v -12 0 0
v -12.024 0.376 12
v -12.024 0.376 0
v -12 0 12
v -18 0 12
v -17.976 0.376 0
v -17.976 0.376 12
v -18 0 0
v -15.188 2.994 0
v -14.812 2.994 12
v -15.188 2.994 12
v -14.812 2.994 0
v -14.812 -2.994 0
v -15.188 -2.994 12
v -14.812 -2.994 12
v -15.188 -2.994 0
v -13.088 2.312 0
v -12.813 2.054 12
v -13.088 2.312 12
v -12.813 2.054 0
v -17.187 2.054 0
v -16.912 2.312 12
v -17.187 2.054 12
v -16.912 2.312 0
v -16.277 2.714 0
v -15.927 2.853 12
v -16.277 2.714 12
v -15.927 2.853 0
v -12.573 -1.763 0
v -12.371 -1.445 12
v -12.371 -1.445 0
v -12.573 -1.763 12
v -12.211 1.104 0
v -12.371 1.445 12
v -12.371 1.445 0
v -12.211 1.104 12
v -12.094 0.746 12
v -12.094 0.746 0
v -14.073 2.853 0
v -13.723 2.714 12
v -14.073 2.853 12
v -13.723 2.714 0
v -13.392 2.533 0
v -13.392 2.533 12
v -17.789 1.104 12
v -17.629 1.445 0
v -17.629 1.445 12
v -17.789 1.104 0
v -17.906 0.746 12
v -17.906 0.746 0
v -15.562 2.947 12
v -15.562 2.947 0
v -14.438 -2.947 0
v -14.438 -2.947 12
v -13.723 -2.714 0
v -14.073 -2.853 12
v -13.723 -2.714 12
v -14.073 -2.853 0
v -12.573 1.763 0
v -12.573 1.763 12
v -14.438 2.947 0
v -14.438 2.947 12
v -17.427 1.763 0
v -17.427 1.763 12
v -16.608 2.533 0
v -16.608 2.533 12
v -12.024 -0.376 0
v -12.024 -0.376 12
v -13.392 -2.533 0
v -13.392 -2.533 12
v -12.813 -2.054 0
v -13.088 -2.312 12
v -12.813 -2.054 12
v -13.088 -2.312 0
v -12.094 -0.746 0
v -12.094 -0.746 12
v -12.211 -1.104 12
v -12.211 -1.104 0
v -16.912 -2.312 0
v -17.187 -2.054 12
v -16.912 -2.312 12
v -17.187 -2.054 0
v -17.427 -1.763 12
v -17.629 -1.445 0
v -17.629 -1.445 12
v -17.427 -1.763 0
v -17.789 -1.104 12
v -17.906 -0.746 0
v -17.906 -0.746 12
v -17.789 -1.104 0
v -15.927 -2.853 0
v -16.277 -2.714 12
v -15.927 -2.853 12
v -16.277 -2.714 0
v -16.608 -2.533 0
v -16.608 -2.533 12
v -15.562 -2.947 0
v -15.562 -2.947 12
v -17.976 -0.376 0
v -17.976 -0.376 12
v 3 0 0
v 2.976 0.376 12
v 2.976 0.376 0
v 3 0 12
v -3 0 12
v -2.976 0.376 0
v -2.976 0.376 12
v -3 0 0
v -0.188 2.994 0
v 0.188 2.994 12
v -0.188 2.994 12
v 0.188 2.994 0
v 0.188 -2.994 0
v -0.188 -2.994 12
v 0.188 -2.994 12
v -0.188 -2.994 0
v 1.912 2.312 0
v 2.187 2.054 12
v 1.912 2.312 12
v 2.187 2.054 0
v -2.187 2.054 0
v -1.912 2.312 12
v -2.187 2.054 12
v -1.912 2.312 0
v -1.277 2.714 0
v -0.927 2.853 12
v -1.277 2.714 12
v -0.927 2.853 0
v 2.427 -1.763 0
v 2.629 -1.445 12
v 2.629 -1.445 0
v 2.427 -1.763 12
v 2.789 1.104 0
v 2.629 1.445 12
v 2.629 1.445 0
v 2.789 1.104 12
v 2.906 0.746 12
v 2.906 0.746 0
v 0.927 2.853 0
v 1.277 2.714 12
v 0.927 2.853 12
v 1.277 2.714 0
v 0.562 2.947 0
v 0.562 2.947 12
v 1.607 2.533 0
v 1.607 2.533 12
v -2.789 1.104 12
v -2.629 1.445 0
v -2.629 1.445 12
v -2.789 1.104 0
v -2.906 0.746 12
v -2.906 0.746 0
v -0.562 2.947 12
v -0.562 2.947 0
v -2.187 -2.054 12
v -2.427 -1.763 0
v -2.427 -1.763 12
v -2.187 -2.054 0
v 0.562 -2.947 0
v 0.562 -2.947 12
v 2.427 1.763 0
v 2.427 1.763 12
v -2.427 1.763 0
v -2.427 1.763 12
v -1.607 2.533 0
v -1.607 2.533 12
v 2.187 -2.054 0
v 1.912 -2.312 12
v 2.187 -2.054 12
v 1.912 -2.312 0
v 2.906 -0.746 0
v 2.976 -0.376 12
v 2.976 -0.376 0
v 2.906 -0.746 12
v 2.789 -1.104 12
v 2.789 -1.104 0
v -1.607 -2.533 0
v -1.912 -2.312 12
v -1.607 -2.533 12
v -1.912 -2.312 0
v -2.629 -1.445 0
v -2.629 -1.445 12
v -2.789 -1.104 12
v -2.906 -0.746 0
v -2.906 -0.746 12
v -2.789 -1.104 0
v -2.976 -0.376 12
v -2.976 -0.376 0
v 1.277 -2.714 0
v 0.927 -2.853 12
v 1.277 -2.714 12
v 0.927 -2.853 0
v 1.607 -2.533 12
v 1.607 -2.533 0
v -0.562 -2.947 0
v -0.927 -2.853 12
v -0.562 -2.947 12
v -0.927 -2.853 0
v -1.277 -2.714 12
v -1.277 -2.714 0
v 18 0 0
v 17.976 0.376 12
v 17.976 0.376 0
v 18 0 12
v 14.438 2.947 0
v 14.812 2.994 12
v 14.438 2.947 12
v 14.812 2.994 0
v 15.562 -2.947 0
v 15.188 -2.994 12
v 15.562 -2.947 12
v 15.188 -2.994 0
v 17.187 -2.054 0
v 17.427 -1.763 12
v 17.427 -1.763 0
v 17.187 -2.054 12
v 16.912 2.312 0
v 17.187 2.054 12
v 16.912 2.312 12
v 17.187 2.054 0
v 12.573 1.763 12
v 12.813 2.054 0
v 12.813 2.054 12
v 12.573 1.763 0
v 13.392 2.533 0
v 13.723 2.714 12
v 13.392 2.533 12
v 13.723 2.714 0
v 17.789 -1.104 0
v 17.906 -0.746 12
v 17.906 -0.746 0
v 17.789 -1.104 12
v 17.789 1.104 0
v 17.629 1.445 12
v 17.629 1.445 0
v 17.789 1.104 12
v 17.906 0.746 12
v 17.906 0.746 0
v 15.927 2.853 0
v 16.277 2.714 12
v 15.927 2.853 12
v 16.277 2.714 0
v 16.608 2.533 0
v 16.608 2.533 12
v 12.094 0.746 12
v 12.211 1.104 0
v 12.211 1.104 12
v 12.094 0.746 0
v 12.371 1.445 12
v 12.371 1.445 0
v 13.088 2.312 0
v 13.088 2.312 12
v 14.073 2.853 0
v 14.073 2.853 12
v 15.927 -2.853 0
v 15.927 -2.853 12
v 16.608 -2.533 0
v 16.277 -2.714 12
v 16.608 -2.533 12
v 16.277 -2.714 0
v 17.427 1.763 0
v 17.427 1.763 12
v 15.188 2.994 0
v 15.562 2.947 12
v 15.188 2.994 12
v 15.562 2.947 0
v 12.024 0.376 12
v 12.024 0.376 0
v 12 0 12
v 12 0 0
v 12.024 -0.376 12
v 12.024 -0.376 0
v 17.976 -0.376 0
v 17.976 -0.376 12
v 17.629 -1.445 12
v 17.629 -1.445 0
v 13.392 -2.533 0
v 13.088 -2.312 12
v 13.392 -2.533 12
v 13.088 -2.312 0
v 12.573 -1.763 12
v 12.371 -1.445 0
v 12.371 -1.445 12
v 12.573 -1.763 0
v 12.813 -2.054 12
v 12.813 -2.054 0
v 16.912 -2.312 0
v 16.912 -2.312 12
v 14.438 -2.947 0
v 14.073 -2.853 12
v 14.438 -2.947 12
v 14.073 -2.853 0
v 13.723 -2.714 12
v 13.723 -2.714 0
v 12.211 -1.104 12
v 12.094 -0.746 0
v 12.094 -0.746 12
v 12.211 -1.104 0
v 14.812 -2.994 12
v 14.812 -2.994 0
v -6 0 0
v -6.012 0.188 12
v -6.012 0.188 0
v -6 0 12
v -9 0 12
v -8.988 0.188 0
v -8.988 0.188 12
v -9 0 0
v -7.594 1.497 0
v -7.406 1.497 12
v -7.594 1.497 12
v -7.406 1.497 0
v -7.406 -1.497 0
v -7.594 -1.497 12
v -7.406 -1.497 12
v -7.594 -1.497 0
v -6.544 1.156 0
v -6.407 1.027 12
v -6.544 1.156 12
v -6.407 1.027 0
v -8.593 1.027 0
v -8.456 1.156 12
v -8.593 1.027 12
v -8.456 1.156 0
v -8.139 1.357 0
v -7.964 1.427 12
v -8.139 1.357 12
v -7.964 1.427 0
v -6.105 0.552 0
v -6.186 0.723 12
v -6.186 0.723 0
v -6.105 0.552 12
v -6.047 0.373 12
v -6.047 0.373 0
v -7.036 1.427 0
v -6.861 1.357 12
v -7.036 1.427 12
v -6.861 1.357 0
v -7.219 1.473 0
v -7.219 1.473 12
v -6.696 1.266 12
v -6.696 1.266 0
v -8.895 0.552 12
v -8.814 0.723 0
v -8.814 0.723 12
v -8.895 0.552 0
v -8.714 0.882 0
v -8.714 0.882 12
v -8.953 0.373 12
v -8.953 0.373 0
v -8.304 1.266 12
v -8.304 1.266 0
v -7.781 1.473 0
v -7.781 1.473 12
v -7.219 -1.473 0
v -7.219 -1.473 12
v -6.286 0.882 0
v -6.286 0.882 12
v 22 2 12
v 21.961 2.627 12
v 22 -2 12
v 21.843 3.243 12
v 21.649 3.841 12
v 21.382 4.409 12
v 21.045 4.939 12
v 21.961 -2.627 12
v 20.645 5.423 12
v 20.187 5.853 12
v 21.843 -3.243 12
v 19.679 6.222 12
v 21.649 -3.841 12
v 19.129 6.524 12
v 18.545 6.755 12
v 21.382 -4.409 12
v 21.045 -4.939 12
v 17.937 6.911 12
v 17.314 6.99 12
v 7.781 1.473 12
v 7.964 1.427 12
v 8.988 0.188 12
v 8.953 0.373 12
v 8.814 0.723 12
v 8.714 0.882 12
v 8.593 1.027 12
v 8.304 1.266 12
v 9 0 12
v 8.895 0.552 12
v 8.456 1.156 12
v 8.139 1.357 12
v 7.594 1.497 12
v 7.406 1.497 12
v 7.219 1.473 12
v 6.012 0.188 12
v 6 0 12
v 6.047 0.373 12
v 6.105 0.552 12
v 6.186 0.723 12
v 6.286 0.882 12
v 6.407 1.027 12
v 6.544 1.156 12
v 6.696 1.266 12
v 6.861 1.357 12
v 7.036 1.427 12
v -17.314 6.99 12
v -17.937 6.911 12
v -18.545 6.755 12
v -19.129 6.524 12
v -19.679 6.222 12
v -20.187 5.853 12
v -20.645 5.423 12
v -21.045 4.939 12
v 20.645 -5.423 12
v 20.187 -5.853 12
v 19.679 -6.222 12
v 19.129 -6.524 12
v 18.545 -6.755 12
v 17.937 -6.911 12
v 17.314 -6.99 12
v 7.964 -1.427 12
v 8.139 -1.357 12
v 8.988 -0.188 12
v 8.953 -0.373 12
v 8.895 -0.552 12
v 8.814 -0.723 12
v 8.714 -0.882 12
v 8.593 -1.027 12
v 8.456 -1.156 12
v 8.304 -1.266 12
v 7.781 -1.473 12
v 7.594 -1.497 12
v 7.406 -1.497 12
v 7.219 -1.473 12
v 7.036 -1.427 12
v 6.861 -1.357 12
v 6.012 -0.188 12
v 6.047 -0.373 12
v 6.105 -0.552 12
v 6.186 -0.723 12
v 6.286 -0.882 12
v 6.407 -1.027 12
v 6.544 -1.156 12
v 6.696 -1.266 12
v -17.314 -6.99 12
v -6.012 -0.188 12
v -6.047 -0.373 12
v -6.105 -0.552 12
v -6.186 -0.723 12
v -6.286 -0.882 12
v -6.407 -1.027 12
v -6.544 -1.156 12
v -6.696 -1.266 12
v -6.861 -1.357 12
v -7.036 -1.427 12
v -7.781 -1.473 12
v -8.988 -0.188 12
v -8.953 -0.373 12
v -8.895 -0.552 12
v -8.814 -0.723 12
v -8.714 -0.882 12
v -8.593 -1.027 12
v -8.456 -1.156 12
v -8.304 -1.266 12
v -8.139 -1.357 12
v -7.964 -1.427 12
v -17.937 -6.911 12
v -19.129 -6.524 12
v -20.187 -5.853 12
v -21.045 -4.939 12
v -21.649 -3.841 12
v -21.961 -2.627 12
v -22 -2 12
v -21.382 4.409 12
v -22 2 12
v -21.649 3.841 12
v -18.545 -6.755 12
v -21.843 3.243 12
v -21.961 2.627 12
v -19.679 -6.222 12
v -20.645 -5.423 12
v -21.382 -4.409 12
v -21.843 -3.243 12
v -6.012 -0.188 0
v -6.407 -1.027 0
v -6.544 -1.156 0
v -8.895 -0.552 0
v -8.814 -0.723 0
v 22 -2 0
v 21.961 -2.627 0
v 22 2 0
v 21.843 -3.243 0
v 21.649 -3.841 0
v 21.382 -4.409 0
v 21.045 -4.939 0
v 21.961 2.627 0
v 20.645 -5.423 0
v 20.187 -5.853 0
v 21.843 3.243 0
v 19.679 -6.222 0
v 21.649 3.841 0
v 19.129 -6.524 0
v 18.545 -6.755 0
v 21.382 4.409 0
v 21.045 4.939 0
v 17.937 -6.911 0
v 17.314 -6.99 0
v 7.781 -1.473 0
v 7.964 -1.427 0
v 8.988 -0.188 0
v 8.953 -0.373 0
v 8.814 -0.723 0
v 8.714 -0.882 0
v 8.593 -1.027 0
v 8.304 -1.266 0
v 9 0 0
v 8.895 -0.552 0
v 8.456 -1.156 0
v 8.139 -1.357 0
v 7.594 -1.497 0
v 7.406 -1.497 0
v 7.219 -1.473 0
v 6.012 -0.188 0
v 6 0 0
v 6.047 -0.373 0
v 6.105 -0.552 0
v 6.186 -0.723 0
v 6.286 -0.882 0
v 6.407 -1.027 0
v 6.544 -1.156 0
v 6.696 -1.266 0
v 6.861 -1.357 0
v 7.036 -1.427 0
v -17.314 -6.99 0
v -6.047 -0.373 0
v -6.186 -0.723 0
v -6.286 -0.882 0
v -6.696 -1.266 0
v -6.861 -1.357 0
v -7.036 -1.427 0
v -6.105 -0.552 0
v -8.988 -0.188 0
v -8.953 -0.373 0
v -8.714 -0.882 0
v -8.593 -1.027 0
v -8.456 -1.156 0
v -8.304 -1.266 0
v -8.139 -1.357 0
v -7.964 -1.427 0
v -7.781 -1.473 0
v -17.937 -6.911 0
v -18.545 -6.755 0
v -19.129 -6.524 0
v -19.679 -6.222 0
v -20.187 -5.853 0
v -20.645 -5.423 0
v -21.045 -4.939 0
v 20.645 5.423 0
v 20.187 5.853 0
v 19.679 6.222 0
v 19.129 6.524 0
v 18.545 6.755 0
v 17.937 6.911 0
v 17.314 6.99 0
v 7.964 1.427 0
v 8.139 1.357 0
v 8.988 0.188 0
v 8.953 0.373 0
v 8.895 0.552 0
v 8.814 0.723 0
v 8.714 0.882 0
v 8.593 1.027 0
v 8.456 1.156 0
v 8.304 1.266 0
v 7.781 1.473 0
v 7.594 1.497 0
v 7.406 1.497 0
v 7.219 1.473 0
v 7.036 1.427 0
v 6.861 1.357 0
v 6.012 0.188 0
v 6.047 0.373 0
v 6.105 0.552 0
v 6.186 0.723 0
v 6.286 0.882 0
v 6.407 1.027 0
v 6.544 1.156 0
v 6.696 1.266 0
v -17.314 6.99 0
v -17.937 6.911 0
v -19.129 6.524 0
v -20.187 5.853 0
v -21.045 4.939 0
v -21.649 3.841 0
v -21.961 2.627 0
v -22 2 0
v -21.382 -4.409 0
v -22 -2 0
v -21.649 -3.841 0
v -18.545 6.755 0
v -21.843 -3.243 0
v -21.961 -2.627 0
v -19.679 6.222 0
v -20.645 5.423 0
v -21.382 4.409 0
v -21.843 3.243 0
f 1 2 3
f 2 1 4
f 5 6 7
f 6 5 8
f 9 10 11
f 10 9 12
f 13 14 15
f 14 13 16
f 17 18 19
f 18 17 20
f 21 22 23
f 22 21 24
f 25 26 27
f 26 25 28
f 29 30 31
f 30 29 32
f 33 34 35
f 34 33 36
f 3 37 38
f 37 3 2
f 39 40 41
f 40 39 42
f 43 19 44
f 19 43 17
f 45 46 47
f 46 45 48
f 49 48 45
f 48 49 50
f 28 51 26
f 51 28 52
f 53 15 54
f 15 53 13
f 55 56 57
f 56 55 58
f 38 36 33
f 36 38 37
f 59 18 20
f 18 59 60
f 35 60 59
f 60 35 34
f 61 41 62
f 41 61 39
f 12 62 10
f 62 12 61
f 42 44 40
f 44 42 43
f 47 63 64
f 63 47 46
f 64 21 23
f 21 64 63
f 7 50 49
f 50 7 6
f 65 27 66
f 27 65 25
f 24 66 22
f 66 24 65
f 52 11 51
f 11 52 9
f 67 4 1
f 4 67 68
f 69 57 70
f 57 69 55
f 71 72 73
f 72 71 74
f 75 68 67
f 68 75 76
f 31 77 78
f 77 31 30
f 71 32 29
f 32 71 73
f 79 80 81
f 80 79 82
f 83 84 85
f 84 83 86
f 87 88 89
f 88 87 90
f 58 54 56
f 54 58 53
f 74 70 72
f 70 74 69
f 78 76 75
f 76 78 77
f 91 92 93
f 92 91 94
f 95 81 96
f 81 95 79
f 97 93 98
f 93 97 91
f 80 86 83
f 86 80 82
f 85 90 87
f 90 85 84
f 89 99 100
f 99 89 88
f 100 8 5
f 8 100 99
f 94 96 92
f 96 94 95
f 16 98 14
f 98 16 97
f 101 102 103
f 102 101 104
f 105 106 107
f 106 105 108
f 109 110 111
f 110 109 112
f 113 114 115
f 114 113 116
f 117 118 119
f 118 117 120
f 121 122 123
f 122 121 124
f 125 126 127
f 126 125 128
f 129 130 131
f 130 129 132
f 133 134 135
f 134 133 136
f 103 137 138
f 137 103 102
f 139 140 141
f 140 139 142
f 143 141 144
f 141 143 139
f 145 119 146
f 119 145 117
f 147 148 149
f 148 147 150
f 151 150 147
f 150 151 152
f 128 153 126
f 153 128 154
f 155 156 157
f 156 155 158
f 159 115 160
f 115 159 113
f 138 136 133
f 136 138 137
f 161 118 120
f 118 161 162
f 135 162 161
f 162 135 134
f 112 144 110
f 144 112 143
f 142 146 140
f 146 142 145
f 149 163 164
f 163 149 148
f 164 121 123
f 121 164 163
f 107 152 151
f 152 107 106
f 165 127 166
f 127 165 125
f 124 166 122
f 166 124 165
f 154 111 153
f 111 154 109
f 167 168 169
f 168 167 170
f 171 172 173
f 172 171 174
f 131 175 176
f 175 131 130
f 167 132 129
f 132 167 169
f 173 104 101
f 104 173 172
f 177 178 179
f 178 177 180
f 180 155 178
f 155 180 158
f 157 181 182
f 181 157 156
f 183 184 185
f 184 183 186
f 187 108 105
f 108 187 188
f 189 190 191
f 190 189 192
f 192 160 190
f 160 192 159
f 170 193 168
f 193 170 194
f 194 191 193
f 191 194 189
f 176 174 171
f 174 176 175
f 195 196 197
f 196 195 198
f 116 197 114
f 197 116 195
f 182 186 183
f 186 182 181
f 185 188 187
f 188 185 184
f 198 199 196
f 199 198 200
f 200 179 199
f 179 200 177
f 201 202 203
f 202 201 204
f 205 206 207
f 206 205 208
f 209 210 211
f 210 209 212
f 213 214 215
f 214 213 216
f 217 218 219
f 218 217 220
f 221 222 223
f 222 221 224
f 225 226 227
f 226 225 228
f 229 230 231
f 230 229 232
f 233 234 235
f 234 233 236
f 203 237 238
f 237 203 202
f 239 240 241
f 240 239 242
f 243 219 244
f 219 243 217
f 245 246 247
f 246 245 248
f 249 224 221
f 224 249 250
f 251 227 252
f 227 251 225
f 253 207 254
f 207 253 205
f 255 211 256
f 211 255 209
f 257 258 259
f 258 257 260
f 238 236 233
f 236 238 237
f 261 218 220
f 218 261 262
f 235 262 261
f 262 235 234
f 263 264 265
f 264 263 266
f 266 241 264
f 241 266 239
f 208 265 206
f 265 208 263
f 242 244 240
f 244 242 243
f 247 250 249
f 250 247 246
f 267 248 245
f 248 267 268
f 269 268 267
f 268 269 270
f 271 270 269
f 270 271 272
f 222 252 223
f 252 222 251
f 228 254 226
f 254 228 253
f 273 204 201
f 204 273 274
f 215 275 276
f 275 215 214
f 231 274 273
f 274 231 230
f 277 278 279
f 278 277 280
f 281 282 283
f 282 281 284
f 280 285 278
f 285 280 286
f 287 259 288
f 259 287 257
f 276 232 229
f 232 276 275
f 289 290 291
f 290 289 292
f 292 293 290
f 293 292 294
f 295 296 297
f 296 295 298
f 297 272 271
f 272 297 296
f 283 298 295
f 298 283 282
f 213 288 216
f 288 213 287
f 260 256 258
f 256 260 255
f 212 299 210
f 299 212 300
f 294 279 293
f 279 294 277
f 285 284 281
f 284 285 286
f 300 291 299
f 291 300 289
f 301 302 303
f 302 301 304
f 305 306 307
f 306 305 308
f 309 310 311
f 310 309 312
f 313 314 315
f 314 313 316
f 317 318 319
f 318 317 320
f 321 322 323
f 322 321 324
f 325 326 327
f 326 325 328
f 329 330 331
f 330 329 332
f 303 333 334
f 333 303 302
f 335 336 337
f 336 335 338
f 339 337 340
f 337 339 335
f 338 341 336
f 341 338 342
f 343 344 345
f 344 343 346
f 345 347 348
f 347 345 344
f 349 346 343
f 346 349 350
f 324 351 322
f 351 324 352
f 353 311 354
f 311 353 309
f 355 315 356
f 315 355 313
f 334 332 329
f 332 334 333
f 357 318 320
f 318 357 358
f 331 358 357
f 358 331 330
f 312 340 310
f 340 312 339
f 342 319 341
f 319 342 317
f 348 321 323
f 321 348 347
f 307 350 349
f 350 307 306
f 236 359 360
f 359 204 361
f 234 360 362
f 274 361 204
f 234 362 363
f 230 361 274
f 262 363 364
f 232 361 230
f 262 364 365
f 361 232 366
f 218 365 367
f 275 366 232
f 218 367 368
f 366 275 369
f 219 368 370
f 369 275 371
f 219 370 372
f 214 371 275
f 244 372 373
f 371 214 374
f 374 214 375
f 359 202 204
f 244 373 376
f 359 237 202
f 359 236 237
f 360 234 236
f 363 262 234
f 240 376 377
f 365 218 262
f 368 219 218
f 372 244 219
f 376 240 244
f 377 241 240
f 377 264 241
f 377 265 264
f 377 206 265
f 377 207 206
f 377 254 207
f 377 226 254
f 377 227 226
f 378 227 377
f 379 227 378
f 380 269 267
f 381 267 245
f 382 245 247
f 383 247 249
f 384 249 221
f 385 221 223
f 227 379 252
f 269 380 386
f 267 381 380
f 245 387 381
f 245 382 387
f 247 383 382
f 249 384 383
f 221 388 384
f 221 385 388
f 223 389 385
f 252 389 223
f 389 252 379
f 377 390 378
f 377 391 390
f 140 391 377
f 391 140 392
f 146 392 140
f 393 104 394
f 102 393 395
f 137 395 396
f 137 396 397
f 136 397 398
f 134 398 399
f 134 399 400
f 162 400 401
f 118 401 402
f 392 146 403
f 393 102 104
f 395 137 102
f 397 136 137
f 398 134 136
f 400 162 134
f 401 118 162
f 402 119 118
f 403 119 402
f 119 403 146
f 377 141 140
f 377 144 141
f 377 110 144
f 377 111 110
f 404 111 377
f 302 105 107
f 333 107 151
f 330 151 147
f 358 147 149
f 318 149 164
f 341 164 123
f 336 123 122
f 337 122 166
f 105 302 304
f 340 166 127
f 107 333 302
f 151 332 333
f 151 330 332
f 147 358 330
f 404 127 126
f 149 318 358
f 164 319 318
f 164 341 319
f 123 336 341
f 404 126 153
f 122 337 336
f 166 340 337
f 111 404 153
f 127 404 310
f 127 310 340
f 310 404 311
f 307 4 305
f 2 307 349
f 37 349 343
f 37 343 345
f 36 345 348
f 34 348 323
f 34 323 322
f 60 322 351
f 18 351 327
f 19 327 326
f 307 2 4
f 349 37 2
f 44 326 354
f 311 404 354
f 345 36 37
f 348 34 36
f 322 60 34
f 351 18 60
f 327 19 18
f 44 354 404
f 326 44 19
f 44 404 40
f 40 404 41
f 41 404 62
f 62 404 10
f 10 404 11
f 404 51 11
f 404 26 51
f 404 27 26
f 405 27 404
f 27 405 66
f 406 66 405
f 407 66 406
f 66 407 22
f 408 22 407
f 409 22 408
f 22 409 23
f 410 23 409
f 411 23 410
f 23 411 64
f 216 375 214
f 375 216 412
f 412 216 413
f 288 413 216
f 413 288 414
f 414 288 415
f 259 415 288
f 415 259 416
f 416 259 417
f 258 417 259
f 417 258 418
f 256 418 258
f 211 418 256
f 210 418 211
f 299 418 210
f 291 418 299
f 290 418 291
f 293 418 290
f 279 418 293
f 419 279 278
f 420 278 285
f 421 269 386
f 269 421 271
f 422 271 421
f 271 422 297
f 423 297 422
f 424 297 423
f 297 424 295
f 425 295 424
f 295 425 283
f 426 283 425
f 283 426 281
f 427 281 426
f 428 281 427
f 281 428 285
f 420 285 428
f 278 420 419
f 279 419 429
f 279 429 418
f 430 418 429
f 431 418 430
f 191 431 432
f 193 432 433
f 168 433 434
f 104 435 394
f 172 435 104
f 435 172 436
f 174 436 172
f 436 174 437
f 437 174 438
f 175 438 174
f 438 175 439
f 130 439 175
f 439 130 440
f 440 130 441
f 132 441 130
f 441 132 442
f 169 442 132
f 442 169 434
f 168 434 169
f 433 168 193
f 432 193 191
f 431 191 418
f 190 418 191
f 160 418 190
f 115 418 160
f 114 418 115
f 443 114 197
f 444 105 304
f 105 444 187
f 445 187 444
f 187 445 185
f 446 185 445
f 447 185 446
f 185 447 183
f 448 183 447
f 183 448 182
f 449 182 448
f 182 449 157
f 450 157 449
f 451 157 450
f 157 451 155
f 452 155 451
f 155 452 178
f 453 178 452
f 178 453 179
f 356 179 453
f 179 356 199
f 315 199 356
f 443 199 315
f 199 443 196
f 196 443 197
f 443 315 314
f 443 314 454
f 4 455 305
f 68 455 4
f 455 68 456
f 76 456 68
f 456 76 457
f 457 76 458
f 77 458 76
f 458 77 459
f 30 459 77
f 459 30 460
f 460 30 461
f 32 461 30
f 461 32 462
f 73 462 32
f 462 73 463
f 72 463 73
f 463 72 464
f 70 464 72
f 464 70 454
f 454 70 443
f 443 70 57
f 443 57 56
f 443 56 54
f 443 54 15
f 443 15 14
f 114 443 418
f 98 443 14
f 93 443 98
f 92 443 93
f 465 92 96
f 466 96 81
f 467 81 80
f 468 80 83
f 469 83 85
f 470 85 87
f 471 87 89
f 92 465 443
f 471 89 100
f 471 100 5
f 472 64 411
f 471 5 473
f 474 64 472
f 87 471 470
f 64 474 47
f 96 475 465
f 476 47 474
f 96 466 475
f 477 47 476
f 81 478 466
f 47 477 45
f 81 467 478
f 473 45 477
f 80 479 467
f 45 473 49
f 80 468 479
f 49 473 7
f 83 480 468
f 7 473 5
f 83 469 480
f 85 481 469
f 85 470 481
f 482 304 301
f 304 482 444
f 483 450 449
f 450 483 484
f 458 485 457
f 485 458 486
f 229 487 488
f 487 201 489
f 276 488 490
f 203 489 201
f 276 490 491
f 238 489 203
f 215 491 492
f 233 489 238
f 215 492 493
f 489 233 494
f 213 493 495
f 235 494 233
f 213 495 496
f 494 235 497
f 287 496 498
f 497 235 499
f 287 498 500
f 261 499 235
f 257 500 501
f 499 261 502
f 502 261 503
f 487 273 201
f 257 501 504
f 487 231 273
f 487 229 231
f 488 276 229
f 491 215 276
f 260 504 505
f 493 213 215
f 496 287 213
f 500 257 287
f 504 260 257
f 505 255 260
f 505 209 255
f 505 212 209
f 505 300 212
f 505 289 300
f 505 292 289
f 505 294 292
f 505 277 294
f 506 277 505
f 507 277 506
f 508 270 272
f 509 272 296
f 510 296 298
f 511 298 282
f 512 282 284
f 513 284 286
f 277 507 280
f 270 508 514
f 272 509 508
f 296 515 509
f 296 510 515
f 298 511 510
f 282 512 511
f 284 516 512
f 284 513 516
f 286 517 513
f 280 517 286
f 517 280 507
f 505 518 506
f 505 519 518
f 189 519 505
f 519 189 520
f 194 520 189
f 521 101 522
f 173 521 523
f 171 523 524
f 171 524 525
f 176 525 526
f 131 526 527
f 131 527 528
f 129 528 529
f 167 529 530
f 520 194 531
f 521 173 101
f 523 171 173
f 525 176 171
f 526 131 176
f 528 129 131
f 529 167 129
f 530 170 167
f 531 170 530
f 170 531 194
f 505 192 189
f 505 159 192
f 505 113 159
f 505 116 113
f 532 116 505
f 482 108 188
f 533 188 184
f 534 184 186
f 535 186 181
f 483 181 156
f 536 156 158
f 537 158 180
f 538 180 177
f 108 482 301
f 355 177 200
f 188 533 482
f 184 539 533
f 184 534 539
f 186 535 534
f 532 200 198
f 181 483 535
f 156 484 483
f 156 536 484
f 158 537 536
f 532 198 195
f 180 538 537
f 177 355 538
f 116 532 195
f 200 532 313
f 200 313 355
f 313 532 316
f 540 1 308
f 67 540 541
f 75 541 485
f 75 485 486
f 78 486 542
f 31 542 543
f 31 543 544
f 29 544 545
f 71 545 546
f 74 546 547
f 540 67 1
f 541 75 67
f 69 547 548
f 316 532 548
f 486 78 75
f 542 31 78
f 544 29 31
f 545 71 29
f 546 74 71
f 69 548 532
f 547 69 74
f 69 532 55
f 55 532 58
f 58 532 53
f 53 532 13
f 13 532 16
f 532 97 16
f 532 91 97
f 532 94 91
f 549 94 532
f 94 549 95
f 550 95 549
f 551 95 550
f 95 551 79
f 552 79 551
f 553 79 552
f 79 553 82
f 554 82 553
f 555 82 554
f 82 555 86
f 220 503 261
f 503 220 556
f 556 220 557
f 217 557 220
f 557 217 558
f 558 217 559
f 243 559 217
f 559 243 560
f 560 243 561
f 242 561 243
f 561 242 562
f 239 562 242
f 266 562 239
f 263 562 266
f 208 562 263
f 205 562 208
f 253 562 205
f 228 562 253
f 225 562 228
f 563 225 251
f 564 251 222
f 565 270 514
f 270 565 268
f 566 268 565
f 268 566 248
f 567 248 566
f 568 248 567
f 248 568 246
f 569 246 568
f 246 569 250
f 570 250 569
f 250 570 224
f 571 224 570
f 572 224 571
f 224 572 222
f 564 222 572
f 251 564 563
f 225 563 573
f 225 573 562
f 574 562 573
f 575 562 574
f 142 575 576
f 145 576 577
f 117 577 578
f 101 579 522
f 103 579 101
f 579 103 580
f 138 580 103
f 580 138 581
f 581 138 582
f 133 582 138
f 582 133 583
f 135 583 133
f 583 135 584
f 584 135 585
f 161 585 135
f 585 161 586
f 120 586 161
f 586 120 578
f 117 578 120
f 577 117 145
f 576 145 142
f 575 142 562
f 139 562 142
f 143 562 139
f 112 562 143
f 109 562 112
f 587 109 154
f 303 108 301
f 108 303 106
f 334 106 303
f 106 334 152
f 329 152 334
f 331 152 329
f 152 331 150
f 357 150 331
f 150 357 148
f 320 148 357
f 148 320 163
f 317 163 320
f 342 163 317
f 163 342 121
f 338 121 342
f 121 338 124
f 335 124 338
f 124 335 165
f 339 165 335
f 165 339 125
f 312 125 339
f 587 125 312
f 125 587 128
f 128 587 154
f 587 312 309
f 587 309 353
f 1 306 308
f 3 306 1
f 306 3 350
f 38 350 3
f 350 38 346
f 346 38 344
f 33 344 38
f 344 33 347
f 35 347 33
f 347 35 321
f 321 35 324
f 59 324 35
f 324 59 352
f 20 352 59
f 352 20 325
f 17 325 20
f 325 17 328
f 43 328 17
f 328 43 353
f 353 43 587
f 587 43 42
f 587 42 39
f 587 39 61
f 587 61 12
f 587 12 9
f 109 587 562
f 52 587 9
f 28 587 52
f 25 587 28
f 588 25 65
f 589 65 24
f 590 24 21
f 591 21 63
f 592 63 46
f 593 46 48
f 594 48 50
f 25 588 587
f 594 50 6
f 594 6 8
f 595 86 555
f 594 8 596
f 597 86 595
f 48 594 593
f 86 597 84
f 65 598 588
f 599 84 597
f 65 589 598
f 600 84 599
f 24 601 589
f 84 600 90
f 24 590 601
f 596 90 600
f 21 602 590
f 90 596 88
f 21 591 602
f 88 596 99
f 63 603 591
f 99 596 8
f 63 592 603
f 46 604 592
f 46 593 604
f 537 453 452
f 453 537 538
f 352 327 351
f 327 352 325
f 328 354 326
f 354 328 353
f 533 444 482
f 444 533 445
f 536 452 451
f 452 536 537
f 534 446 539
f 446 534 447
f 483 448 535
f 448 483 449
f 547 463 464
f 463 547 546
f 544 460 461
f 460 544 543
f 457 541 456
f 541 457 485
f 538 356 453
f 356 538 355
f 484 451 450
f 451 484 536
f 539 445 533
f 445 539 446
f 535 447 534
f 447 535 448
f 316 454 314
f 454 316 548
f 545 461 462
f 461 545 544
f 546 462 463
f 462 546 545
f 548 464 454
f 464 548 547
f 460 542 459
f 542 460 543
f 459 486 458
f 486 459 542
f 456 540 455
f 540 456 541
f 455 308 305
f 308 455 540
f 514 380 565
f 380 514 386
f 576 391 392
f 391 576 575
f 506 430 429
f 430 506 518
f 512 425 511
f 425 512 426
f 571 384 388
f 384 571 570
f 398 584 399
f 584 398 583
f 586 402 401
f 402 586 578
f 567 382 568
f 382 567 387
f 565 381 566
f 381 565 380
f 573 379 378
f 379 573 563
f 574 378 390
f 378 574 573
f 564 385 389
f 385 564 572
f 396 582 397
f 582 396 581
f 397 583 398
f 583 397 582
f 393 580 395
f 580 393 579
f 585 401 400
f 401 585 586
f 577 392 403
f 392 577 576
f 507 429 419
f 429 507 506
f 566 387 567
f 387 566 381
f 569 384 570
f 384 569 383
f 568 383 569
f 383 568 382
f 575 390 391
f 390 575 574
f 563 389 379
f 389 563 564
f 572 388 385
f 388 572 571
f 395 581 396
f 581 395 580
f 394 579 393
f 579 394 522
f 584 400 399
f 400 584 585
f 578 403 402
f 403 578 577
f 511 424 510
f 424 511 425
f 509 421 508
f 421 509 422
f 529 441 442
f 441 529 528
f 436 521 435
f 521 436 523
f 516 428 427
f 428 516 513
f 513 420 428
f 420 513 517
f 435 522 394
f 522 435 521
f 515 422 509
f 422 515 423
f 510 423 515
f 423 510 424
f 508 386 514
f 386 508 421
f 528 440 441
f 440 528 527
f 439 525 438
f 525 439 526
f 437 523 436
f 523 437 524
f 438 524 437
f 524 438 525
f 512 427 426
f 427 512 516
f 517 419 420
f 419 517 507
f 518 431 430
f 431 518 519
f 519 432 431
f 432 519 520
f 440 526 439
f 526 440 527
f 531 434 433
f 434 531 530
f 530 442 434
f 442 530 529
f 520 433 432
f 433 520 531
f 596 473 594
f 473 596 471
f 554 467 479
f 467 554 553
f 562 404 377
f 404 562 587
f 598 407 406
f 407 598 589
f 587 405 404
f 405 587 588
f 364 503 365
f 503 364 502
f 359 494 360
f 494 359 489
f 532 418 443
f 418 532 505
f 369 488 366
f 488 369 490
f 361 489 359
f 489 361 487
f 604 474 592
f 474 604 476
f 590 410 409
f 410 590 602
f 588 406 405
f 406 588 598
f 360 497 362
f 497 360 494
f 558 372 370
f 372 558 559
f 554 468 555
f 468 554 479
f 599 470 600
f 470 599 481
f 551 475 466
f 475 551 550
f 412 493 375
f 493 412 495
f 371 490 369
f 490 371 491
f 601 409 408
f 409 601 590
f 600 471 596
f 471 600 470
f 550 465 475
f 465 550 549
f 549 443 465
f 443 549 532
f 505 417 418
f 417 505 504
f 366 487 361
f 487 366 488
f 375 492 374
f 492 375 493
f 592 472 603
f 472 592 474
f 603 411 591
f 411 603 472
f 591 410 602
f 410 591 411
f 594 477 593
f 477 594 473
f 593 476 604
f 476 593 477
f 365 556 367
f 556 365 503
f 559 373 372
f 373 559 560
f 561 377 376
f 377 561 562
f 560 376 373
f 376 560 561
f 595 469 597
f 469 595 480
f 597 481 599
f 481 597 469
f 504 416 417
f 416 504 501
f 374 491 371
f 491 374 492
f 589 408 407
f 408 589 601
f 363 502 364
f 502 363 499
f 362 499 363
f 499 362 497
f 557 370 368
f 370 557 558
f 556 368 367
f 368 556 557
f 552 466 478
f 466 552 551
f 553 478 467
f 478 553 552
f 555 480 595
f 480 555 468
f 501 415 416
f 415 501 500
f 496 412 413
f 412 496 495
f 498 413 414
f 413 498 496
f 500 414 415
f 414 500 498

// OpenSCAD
$fn = 50;


difference() {
	union() {
		hull() {
			translate(v = [-17.0000000000, 2.0000000000, 0]) {
				cylinder(h = 12, r = 5);
			}
			translate(v = [17.0000000000, 2.0000000000, 0]) {
				cylinder(h = 12, r = 5);
			}
			translate(v = [-17.0000000000, -2.0000000000, 0]) {
				cylinder(h = 12, r = 5);
			}
			translate(v = [17.0000000000, -2.0000000000, 0]) {
				cylinder(h = 12, r = 5);
			}
		}
	}
	union() {
		translate(v = [-15.0000000000, 0.0000000000, -100.0000000000]) {
			cylinder(h = 200, r = 3.0000000000);
		}
		translate(v = [0.0000000000, 0.0000000000, -100.0000000000]) {
			cylinder(h = 200, r = 3.0000000000);
		}
		translate(v = [15.0000000000, 0.0000000000, -100.0000000000]) {
			cylinder(h = 200, r = 3.0000000000);
		}
		translate(v = [-15.0000000000, 0.0000000000, 0]) {
			cylinder(h = 12, r = 1.5000000000);
		}
		translate(v = [-7.5000000000, 0.0000000000, 0]) {
			cylinder(h = 12, r = 1.5000000000);
		}
		cylinder(h = 12, r = 1.5000000000);
		translate(v = [7.5000000000, 0.0000000000, 0]) {
			cylinder(h = 12, r = 1.5000000000);
		}
		translate(v = [15.0000000000, 0.0000000000, 0]) {
			cylinder(h = 12, r = 1.5000000000);
		}
		translate(v = [-15.0000000000, 0.0000000000, 0]) {
			cylinder(h = 12, r = 1.5000000000);
		}
		translate(v = [-7.5000000000, 0.0000000000, 0]) {
			cylinder(h = 12, r = 1.5000000000);
		}
		cylinder(h = 12, r = 1.5000000000);
		translate(v = [7.5000000000, 0.0000000000, 0]) {
			cylinder(h = 12, r = 1.5000000000);
		}
		translate(v = [15.0000000000, 0.0000000000, 0]) {
			cylinder(h = 12, r = 1.5000000000);
		}
		translate(v = [-15.0000000000, 0.0000000000, 0]) {
			cylinder(h = 12, r = 1.5000000000);
		}
		translate(v = [-7.5000000000, 0.0000000000, 0]) {
			cylinder(h = 12, r = 1.5000000000);
		}
		cylinder(h = 12, r = 1.5000000000);
		translate(v = [7.5000000000, 0.0000000000, 0]) {
			cylinder(h = 12, r = 1.5000000000);
		}
		translate(v = [15.0000000000, 0.0000000000, 0]) {
			cylinder(h = 12, r = 1.5000000000);
		}
	}
}
